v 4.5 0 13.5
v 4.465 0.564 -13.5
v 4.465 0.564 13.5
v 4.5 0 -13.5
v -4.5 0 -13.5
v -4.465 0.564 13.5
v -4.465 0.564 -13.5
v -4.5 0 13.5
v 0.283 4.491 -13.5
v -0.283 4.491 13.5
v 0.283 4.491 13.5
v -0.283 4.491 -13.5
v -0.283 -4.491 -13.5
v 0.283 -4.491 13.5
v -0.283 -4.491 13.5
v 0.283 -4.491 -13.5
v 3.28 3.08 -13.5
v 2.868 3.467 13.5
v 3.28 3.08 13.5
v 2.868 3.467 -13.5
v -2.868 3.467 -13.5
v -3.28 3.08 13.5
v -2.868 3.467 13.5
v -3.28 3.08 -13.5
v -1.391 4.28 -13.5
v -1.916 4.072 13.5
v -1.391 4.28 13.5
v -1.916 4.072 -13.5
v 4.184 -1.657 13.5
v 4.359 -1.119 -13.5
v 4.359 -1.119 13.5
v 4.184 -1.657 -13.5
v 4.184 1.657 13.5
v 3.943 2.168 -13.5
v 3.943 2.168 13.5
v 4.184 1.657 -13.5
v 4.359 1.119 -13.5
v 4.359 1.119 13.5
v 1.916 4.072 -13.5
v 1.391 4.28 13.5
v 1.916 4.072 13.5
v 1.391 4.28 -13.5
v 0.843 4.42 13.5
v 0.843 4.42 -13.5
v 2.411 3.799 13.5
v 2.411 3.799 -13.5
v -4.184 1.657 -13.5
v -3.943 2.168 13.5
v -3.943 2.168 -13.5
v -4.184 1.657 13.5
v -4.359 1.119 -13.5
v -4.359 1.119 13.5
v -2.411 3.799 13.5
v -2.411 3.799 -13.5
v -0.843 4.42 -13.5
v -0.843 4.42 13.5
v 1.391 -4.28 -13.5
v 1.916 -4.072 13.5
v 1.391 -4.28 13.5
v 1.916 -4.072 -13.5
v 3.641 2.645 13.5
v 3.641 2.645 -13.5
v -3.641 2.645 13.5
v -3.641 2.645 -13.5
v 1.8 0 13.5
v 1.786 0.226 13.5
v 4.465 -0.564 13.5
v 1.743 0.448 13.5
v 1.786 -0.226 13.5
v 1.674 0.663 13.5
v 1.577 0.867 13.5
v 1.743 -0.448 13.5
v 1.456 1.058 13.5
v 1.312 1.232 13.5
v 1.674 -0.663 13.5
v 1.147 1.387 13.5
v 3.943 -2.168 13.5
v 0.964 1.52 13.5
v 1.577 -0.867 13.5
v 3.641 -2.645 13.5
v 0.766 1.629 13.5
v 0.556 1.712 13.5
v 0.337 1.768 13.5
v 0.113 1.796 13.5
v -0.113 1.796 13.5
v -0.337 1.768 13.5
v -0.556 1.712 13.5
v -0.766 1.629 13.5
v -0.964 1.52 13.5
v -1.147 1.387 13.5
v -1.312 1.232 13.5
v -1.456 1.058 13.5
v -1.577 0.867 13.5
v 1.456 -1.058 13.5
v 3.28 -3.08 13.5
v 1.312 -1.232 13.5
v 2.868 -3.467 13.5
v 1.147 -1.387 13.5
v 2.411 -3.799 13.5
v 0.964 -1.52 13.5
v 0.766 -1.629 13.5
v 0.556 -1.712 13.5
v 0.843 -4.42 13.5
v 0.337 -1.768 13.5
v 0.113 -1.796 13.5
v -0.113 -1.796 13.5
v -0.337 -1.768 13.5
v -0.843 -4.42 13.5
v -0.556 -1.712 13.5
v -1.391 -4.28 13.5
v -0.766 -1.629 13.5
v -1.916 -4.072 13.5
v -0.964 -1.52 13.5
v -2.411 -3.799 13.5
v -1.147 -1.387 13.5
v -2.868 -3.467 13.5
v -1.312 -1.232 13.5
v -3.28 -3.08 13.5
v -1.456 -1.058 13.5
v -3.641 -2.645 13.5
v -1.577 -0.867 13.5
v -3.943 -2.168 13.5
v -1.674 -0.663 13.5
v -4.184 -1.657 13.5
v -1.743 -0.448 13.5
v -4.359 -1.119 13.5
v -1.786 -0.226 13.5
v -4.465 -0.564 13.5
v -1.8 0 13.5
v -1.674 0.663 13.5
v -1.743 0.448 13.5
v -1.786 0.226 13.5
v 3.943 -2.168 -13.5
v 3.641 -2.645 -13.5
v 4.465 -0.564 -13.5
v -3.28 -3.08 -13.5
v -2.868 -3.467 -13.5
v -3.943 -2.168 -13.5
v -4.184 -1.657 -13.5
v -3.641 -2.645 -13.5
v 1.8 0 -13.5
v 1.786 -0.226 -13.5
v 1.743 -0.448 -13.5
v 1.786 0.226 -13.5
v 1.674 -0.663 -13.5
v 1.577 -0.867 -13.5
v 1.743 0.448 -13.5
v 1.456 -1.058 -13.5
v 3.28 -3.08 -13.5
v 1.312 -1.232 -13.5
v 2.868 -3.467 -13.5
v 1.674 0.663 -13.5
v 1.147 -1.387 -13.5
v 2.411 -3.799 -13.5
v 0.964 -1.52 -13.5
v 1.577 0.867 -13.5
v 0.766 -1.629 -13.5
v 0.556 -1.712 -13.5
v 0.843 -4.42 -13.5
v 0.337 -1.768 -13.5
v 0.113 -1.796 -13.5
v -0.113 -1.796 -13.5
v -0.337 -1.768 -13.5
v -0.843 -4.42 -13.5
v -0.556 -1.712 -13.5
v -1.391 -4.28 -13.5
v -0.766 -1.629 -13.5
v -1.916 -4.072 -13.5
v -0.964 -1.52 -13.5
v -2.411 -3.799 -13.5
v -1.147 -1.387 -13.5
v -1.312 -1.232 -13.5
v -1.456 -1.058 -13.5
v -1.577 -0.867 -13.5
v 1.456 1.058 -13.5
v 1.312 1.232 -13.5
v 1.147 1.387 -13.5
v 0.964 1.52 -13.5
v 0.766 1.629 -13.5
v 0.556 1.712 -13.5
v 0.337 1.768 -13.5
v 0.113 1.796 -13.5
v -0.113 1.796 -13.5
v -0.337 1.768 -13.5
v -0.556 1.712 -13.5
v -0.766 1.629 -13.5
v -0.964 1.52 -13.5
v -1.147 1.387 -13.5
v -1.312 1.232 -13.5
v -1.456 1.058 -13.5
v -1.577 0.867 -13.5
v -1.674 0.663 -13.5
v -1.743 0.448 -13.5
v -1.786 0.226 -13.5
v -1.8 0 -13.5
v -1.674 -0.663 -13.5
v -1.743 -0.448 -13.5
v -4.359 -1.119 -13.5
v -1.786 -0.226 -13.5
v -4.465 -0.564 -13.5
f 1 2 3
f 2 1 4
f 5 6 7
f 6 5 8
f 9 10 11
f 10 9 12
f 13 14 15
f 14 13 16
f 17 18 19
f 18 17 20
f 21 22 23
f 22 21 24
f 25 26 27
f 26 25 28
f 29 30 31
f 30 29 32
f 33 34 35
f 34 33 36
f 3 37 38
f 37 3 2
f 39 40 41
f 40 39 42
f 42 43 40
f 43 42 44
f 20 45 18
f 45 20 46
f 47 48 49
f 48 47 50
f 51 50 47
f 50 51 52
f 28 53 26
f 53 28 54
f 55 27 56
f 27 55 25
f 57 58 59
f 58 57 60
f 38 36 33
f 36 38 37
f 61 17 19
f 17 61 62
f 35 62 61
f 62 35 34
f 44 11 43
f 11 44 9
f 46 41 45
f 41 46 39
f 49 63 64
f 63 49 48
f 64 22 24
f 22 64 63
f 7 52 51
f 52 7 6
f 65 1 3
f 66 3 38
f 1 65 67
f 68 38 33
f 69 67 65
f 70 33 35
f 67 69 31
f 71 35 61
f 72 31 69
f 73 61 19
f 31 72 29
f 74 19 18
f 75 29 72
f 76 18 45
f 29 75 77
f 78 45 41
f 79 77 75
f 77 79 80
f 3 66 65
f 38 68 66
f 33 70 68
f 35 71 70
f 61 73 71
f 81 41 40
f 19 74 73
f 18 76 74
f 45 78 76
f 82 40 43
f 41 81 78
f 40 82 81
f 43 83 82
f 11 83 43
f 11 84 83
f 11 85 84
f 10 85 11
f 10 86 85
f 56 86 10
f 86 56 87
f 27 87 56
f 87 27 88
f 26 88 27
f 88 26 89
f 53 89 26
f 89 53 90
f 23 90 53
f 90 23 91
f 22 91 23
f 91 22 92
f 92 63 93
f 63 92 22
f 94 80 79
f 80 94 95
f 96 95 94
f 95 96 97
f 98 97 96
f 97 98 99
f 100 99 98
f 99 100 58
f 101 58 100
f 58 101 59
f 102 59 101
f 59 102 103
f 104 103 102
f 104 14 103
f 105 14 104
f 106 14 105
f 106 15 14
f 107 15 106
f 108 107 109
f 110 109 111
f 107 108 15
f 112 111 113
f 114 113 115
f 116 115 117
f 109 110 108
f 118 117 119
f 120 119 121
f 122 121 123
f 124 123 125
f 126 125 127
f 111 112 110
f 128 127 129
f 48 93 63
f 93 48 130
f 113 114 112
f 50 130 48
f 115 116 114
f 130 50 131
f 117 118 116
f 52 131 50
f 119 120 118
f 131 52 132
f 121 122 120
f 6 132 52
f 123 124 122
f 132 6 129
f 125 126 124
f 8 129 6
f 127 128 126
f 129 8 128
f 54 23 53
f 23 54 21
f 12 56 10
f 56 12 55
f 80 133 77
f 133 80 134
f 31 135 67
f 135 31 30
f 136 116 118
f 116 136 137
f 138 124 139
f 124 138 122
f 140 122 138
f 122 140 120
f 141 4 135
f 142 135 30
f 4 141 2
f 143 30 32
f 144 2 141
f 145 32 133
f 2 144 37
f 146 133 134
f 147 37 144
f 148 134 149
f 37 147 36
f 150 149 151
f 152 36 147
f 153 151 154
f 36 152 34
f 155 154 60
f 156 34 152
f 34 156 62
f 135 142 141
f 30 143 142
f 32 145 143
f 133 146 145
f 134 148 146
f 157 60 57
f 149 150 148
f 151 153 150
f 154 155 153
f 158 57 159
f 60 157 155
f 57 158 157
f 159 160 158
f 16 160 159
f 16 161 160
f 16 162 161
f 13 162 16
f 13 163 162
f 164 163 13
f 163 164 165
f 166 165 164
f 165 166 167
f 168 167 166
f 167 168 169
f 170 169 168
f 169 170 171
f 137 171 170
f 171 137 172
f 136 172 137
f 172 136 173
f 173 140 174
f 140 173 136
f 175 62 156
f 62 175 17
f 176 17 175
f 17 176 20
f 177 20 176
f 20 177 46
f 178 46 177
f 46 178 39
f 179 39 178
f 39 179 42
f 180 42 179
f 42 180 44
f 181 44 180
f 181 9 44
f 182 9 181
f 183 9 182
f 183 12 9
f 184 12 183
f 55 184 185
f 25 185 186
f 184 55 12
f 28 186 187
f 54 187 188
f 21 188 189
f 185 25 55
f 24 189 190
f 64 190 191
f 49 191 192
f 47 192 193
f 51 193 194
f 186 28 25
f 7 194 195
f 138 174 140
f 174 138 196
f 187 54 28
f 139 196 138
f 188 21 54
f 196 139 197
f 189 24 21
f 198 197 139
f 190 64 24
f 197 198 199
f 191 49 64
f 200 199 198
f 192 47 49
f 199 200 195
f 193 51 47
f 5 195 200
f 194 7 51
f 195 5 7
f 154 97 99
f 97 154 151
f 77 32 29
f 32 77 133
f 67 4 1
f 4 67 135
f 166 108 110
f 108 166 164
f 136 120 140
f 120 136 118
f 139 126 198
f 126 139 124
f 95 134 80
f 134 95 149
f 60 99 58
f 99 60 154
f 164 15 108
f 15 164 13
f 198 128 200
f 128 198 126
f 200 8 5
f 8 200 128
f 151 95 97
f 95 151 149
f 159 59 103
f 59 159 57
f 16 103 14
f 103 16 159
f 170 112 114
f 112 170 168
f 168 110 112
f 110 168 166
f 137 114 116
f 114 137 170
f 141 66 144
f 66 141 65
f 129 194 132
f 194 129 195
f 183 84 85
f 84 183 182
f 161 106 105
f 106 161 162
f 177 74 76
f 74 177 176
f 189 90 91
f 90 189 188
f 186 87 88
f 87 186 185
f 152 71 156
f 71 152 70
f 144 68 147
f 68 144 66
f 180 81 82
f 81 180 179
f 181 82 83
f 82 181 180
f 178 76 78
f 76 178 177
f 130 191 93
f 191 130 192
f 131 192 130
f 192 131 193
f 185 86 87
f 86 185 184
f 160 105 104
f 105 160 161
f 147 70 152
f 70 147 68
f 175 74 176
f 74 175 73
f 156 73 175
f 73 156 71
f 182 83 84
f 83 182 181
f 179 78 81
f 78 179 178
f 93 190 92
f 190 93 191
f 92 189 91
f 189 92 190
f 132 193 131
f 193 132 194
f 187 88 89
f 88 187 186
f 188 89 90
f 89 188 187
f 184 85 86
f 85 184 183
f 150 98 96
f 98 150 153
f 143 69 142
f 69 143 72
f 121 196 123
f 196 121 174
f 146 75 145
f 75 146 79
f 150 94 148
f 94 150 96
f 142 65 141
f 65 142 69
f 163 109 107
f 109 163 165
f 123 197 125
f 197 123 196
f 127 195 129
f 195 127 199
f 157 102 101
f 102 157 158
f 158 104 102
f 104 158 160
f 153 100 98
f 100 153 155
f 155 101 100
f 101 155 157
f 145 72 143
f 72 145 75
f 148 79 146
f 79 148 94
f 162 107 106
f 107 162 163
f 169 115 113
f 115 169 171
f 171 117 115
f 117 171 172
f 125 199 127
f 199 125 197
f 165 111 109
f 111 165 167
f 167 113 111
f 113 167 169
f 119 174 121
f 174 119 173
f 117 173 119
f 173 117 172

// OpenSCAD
$fn = 50;


difference() {
	union() {
		translate(v = [0, 0, -13.5000000000]) {
			cylinder(h = 27, r = 4.5000000000);
		}
	}
	union() {
		translate(v = [0, 0, -100.0000000000]) {
			cylinder(h = 200, r = 1.8000000000);
		}
	}
}
